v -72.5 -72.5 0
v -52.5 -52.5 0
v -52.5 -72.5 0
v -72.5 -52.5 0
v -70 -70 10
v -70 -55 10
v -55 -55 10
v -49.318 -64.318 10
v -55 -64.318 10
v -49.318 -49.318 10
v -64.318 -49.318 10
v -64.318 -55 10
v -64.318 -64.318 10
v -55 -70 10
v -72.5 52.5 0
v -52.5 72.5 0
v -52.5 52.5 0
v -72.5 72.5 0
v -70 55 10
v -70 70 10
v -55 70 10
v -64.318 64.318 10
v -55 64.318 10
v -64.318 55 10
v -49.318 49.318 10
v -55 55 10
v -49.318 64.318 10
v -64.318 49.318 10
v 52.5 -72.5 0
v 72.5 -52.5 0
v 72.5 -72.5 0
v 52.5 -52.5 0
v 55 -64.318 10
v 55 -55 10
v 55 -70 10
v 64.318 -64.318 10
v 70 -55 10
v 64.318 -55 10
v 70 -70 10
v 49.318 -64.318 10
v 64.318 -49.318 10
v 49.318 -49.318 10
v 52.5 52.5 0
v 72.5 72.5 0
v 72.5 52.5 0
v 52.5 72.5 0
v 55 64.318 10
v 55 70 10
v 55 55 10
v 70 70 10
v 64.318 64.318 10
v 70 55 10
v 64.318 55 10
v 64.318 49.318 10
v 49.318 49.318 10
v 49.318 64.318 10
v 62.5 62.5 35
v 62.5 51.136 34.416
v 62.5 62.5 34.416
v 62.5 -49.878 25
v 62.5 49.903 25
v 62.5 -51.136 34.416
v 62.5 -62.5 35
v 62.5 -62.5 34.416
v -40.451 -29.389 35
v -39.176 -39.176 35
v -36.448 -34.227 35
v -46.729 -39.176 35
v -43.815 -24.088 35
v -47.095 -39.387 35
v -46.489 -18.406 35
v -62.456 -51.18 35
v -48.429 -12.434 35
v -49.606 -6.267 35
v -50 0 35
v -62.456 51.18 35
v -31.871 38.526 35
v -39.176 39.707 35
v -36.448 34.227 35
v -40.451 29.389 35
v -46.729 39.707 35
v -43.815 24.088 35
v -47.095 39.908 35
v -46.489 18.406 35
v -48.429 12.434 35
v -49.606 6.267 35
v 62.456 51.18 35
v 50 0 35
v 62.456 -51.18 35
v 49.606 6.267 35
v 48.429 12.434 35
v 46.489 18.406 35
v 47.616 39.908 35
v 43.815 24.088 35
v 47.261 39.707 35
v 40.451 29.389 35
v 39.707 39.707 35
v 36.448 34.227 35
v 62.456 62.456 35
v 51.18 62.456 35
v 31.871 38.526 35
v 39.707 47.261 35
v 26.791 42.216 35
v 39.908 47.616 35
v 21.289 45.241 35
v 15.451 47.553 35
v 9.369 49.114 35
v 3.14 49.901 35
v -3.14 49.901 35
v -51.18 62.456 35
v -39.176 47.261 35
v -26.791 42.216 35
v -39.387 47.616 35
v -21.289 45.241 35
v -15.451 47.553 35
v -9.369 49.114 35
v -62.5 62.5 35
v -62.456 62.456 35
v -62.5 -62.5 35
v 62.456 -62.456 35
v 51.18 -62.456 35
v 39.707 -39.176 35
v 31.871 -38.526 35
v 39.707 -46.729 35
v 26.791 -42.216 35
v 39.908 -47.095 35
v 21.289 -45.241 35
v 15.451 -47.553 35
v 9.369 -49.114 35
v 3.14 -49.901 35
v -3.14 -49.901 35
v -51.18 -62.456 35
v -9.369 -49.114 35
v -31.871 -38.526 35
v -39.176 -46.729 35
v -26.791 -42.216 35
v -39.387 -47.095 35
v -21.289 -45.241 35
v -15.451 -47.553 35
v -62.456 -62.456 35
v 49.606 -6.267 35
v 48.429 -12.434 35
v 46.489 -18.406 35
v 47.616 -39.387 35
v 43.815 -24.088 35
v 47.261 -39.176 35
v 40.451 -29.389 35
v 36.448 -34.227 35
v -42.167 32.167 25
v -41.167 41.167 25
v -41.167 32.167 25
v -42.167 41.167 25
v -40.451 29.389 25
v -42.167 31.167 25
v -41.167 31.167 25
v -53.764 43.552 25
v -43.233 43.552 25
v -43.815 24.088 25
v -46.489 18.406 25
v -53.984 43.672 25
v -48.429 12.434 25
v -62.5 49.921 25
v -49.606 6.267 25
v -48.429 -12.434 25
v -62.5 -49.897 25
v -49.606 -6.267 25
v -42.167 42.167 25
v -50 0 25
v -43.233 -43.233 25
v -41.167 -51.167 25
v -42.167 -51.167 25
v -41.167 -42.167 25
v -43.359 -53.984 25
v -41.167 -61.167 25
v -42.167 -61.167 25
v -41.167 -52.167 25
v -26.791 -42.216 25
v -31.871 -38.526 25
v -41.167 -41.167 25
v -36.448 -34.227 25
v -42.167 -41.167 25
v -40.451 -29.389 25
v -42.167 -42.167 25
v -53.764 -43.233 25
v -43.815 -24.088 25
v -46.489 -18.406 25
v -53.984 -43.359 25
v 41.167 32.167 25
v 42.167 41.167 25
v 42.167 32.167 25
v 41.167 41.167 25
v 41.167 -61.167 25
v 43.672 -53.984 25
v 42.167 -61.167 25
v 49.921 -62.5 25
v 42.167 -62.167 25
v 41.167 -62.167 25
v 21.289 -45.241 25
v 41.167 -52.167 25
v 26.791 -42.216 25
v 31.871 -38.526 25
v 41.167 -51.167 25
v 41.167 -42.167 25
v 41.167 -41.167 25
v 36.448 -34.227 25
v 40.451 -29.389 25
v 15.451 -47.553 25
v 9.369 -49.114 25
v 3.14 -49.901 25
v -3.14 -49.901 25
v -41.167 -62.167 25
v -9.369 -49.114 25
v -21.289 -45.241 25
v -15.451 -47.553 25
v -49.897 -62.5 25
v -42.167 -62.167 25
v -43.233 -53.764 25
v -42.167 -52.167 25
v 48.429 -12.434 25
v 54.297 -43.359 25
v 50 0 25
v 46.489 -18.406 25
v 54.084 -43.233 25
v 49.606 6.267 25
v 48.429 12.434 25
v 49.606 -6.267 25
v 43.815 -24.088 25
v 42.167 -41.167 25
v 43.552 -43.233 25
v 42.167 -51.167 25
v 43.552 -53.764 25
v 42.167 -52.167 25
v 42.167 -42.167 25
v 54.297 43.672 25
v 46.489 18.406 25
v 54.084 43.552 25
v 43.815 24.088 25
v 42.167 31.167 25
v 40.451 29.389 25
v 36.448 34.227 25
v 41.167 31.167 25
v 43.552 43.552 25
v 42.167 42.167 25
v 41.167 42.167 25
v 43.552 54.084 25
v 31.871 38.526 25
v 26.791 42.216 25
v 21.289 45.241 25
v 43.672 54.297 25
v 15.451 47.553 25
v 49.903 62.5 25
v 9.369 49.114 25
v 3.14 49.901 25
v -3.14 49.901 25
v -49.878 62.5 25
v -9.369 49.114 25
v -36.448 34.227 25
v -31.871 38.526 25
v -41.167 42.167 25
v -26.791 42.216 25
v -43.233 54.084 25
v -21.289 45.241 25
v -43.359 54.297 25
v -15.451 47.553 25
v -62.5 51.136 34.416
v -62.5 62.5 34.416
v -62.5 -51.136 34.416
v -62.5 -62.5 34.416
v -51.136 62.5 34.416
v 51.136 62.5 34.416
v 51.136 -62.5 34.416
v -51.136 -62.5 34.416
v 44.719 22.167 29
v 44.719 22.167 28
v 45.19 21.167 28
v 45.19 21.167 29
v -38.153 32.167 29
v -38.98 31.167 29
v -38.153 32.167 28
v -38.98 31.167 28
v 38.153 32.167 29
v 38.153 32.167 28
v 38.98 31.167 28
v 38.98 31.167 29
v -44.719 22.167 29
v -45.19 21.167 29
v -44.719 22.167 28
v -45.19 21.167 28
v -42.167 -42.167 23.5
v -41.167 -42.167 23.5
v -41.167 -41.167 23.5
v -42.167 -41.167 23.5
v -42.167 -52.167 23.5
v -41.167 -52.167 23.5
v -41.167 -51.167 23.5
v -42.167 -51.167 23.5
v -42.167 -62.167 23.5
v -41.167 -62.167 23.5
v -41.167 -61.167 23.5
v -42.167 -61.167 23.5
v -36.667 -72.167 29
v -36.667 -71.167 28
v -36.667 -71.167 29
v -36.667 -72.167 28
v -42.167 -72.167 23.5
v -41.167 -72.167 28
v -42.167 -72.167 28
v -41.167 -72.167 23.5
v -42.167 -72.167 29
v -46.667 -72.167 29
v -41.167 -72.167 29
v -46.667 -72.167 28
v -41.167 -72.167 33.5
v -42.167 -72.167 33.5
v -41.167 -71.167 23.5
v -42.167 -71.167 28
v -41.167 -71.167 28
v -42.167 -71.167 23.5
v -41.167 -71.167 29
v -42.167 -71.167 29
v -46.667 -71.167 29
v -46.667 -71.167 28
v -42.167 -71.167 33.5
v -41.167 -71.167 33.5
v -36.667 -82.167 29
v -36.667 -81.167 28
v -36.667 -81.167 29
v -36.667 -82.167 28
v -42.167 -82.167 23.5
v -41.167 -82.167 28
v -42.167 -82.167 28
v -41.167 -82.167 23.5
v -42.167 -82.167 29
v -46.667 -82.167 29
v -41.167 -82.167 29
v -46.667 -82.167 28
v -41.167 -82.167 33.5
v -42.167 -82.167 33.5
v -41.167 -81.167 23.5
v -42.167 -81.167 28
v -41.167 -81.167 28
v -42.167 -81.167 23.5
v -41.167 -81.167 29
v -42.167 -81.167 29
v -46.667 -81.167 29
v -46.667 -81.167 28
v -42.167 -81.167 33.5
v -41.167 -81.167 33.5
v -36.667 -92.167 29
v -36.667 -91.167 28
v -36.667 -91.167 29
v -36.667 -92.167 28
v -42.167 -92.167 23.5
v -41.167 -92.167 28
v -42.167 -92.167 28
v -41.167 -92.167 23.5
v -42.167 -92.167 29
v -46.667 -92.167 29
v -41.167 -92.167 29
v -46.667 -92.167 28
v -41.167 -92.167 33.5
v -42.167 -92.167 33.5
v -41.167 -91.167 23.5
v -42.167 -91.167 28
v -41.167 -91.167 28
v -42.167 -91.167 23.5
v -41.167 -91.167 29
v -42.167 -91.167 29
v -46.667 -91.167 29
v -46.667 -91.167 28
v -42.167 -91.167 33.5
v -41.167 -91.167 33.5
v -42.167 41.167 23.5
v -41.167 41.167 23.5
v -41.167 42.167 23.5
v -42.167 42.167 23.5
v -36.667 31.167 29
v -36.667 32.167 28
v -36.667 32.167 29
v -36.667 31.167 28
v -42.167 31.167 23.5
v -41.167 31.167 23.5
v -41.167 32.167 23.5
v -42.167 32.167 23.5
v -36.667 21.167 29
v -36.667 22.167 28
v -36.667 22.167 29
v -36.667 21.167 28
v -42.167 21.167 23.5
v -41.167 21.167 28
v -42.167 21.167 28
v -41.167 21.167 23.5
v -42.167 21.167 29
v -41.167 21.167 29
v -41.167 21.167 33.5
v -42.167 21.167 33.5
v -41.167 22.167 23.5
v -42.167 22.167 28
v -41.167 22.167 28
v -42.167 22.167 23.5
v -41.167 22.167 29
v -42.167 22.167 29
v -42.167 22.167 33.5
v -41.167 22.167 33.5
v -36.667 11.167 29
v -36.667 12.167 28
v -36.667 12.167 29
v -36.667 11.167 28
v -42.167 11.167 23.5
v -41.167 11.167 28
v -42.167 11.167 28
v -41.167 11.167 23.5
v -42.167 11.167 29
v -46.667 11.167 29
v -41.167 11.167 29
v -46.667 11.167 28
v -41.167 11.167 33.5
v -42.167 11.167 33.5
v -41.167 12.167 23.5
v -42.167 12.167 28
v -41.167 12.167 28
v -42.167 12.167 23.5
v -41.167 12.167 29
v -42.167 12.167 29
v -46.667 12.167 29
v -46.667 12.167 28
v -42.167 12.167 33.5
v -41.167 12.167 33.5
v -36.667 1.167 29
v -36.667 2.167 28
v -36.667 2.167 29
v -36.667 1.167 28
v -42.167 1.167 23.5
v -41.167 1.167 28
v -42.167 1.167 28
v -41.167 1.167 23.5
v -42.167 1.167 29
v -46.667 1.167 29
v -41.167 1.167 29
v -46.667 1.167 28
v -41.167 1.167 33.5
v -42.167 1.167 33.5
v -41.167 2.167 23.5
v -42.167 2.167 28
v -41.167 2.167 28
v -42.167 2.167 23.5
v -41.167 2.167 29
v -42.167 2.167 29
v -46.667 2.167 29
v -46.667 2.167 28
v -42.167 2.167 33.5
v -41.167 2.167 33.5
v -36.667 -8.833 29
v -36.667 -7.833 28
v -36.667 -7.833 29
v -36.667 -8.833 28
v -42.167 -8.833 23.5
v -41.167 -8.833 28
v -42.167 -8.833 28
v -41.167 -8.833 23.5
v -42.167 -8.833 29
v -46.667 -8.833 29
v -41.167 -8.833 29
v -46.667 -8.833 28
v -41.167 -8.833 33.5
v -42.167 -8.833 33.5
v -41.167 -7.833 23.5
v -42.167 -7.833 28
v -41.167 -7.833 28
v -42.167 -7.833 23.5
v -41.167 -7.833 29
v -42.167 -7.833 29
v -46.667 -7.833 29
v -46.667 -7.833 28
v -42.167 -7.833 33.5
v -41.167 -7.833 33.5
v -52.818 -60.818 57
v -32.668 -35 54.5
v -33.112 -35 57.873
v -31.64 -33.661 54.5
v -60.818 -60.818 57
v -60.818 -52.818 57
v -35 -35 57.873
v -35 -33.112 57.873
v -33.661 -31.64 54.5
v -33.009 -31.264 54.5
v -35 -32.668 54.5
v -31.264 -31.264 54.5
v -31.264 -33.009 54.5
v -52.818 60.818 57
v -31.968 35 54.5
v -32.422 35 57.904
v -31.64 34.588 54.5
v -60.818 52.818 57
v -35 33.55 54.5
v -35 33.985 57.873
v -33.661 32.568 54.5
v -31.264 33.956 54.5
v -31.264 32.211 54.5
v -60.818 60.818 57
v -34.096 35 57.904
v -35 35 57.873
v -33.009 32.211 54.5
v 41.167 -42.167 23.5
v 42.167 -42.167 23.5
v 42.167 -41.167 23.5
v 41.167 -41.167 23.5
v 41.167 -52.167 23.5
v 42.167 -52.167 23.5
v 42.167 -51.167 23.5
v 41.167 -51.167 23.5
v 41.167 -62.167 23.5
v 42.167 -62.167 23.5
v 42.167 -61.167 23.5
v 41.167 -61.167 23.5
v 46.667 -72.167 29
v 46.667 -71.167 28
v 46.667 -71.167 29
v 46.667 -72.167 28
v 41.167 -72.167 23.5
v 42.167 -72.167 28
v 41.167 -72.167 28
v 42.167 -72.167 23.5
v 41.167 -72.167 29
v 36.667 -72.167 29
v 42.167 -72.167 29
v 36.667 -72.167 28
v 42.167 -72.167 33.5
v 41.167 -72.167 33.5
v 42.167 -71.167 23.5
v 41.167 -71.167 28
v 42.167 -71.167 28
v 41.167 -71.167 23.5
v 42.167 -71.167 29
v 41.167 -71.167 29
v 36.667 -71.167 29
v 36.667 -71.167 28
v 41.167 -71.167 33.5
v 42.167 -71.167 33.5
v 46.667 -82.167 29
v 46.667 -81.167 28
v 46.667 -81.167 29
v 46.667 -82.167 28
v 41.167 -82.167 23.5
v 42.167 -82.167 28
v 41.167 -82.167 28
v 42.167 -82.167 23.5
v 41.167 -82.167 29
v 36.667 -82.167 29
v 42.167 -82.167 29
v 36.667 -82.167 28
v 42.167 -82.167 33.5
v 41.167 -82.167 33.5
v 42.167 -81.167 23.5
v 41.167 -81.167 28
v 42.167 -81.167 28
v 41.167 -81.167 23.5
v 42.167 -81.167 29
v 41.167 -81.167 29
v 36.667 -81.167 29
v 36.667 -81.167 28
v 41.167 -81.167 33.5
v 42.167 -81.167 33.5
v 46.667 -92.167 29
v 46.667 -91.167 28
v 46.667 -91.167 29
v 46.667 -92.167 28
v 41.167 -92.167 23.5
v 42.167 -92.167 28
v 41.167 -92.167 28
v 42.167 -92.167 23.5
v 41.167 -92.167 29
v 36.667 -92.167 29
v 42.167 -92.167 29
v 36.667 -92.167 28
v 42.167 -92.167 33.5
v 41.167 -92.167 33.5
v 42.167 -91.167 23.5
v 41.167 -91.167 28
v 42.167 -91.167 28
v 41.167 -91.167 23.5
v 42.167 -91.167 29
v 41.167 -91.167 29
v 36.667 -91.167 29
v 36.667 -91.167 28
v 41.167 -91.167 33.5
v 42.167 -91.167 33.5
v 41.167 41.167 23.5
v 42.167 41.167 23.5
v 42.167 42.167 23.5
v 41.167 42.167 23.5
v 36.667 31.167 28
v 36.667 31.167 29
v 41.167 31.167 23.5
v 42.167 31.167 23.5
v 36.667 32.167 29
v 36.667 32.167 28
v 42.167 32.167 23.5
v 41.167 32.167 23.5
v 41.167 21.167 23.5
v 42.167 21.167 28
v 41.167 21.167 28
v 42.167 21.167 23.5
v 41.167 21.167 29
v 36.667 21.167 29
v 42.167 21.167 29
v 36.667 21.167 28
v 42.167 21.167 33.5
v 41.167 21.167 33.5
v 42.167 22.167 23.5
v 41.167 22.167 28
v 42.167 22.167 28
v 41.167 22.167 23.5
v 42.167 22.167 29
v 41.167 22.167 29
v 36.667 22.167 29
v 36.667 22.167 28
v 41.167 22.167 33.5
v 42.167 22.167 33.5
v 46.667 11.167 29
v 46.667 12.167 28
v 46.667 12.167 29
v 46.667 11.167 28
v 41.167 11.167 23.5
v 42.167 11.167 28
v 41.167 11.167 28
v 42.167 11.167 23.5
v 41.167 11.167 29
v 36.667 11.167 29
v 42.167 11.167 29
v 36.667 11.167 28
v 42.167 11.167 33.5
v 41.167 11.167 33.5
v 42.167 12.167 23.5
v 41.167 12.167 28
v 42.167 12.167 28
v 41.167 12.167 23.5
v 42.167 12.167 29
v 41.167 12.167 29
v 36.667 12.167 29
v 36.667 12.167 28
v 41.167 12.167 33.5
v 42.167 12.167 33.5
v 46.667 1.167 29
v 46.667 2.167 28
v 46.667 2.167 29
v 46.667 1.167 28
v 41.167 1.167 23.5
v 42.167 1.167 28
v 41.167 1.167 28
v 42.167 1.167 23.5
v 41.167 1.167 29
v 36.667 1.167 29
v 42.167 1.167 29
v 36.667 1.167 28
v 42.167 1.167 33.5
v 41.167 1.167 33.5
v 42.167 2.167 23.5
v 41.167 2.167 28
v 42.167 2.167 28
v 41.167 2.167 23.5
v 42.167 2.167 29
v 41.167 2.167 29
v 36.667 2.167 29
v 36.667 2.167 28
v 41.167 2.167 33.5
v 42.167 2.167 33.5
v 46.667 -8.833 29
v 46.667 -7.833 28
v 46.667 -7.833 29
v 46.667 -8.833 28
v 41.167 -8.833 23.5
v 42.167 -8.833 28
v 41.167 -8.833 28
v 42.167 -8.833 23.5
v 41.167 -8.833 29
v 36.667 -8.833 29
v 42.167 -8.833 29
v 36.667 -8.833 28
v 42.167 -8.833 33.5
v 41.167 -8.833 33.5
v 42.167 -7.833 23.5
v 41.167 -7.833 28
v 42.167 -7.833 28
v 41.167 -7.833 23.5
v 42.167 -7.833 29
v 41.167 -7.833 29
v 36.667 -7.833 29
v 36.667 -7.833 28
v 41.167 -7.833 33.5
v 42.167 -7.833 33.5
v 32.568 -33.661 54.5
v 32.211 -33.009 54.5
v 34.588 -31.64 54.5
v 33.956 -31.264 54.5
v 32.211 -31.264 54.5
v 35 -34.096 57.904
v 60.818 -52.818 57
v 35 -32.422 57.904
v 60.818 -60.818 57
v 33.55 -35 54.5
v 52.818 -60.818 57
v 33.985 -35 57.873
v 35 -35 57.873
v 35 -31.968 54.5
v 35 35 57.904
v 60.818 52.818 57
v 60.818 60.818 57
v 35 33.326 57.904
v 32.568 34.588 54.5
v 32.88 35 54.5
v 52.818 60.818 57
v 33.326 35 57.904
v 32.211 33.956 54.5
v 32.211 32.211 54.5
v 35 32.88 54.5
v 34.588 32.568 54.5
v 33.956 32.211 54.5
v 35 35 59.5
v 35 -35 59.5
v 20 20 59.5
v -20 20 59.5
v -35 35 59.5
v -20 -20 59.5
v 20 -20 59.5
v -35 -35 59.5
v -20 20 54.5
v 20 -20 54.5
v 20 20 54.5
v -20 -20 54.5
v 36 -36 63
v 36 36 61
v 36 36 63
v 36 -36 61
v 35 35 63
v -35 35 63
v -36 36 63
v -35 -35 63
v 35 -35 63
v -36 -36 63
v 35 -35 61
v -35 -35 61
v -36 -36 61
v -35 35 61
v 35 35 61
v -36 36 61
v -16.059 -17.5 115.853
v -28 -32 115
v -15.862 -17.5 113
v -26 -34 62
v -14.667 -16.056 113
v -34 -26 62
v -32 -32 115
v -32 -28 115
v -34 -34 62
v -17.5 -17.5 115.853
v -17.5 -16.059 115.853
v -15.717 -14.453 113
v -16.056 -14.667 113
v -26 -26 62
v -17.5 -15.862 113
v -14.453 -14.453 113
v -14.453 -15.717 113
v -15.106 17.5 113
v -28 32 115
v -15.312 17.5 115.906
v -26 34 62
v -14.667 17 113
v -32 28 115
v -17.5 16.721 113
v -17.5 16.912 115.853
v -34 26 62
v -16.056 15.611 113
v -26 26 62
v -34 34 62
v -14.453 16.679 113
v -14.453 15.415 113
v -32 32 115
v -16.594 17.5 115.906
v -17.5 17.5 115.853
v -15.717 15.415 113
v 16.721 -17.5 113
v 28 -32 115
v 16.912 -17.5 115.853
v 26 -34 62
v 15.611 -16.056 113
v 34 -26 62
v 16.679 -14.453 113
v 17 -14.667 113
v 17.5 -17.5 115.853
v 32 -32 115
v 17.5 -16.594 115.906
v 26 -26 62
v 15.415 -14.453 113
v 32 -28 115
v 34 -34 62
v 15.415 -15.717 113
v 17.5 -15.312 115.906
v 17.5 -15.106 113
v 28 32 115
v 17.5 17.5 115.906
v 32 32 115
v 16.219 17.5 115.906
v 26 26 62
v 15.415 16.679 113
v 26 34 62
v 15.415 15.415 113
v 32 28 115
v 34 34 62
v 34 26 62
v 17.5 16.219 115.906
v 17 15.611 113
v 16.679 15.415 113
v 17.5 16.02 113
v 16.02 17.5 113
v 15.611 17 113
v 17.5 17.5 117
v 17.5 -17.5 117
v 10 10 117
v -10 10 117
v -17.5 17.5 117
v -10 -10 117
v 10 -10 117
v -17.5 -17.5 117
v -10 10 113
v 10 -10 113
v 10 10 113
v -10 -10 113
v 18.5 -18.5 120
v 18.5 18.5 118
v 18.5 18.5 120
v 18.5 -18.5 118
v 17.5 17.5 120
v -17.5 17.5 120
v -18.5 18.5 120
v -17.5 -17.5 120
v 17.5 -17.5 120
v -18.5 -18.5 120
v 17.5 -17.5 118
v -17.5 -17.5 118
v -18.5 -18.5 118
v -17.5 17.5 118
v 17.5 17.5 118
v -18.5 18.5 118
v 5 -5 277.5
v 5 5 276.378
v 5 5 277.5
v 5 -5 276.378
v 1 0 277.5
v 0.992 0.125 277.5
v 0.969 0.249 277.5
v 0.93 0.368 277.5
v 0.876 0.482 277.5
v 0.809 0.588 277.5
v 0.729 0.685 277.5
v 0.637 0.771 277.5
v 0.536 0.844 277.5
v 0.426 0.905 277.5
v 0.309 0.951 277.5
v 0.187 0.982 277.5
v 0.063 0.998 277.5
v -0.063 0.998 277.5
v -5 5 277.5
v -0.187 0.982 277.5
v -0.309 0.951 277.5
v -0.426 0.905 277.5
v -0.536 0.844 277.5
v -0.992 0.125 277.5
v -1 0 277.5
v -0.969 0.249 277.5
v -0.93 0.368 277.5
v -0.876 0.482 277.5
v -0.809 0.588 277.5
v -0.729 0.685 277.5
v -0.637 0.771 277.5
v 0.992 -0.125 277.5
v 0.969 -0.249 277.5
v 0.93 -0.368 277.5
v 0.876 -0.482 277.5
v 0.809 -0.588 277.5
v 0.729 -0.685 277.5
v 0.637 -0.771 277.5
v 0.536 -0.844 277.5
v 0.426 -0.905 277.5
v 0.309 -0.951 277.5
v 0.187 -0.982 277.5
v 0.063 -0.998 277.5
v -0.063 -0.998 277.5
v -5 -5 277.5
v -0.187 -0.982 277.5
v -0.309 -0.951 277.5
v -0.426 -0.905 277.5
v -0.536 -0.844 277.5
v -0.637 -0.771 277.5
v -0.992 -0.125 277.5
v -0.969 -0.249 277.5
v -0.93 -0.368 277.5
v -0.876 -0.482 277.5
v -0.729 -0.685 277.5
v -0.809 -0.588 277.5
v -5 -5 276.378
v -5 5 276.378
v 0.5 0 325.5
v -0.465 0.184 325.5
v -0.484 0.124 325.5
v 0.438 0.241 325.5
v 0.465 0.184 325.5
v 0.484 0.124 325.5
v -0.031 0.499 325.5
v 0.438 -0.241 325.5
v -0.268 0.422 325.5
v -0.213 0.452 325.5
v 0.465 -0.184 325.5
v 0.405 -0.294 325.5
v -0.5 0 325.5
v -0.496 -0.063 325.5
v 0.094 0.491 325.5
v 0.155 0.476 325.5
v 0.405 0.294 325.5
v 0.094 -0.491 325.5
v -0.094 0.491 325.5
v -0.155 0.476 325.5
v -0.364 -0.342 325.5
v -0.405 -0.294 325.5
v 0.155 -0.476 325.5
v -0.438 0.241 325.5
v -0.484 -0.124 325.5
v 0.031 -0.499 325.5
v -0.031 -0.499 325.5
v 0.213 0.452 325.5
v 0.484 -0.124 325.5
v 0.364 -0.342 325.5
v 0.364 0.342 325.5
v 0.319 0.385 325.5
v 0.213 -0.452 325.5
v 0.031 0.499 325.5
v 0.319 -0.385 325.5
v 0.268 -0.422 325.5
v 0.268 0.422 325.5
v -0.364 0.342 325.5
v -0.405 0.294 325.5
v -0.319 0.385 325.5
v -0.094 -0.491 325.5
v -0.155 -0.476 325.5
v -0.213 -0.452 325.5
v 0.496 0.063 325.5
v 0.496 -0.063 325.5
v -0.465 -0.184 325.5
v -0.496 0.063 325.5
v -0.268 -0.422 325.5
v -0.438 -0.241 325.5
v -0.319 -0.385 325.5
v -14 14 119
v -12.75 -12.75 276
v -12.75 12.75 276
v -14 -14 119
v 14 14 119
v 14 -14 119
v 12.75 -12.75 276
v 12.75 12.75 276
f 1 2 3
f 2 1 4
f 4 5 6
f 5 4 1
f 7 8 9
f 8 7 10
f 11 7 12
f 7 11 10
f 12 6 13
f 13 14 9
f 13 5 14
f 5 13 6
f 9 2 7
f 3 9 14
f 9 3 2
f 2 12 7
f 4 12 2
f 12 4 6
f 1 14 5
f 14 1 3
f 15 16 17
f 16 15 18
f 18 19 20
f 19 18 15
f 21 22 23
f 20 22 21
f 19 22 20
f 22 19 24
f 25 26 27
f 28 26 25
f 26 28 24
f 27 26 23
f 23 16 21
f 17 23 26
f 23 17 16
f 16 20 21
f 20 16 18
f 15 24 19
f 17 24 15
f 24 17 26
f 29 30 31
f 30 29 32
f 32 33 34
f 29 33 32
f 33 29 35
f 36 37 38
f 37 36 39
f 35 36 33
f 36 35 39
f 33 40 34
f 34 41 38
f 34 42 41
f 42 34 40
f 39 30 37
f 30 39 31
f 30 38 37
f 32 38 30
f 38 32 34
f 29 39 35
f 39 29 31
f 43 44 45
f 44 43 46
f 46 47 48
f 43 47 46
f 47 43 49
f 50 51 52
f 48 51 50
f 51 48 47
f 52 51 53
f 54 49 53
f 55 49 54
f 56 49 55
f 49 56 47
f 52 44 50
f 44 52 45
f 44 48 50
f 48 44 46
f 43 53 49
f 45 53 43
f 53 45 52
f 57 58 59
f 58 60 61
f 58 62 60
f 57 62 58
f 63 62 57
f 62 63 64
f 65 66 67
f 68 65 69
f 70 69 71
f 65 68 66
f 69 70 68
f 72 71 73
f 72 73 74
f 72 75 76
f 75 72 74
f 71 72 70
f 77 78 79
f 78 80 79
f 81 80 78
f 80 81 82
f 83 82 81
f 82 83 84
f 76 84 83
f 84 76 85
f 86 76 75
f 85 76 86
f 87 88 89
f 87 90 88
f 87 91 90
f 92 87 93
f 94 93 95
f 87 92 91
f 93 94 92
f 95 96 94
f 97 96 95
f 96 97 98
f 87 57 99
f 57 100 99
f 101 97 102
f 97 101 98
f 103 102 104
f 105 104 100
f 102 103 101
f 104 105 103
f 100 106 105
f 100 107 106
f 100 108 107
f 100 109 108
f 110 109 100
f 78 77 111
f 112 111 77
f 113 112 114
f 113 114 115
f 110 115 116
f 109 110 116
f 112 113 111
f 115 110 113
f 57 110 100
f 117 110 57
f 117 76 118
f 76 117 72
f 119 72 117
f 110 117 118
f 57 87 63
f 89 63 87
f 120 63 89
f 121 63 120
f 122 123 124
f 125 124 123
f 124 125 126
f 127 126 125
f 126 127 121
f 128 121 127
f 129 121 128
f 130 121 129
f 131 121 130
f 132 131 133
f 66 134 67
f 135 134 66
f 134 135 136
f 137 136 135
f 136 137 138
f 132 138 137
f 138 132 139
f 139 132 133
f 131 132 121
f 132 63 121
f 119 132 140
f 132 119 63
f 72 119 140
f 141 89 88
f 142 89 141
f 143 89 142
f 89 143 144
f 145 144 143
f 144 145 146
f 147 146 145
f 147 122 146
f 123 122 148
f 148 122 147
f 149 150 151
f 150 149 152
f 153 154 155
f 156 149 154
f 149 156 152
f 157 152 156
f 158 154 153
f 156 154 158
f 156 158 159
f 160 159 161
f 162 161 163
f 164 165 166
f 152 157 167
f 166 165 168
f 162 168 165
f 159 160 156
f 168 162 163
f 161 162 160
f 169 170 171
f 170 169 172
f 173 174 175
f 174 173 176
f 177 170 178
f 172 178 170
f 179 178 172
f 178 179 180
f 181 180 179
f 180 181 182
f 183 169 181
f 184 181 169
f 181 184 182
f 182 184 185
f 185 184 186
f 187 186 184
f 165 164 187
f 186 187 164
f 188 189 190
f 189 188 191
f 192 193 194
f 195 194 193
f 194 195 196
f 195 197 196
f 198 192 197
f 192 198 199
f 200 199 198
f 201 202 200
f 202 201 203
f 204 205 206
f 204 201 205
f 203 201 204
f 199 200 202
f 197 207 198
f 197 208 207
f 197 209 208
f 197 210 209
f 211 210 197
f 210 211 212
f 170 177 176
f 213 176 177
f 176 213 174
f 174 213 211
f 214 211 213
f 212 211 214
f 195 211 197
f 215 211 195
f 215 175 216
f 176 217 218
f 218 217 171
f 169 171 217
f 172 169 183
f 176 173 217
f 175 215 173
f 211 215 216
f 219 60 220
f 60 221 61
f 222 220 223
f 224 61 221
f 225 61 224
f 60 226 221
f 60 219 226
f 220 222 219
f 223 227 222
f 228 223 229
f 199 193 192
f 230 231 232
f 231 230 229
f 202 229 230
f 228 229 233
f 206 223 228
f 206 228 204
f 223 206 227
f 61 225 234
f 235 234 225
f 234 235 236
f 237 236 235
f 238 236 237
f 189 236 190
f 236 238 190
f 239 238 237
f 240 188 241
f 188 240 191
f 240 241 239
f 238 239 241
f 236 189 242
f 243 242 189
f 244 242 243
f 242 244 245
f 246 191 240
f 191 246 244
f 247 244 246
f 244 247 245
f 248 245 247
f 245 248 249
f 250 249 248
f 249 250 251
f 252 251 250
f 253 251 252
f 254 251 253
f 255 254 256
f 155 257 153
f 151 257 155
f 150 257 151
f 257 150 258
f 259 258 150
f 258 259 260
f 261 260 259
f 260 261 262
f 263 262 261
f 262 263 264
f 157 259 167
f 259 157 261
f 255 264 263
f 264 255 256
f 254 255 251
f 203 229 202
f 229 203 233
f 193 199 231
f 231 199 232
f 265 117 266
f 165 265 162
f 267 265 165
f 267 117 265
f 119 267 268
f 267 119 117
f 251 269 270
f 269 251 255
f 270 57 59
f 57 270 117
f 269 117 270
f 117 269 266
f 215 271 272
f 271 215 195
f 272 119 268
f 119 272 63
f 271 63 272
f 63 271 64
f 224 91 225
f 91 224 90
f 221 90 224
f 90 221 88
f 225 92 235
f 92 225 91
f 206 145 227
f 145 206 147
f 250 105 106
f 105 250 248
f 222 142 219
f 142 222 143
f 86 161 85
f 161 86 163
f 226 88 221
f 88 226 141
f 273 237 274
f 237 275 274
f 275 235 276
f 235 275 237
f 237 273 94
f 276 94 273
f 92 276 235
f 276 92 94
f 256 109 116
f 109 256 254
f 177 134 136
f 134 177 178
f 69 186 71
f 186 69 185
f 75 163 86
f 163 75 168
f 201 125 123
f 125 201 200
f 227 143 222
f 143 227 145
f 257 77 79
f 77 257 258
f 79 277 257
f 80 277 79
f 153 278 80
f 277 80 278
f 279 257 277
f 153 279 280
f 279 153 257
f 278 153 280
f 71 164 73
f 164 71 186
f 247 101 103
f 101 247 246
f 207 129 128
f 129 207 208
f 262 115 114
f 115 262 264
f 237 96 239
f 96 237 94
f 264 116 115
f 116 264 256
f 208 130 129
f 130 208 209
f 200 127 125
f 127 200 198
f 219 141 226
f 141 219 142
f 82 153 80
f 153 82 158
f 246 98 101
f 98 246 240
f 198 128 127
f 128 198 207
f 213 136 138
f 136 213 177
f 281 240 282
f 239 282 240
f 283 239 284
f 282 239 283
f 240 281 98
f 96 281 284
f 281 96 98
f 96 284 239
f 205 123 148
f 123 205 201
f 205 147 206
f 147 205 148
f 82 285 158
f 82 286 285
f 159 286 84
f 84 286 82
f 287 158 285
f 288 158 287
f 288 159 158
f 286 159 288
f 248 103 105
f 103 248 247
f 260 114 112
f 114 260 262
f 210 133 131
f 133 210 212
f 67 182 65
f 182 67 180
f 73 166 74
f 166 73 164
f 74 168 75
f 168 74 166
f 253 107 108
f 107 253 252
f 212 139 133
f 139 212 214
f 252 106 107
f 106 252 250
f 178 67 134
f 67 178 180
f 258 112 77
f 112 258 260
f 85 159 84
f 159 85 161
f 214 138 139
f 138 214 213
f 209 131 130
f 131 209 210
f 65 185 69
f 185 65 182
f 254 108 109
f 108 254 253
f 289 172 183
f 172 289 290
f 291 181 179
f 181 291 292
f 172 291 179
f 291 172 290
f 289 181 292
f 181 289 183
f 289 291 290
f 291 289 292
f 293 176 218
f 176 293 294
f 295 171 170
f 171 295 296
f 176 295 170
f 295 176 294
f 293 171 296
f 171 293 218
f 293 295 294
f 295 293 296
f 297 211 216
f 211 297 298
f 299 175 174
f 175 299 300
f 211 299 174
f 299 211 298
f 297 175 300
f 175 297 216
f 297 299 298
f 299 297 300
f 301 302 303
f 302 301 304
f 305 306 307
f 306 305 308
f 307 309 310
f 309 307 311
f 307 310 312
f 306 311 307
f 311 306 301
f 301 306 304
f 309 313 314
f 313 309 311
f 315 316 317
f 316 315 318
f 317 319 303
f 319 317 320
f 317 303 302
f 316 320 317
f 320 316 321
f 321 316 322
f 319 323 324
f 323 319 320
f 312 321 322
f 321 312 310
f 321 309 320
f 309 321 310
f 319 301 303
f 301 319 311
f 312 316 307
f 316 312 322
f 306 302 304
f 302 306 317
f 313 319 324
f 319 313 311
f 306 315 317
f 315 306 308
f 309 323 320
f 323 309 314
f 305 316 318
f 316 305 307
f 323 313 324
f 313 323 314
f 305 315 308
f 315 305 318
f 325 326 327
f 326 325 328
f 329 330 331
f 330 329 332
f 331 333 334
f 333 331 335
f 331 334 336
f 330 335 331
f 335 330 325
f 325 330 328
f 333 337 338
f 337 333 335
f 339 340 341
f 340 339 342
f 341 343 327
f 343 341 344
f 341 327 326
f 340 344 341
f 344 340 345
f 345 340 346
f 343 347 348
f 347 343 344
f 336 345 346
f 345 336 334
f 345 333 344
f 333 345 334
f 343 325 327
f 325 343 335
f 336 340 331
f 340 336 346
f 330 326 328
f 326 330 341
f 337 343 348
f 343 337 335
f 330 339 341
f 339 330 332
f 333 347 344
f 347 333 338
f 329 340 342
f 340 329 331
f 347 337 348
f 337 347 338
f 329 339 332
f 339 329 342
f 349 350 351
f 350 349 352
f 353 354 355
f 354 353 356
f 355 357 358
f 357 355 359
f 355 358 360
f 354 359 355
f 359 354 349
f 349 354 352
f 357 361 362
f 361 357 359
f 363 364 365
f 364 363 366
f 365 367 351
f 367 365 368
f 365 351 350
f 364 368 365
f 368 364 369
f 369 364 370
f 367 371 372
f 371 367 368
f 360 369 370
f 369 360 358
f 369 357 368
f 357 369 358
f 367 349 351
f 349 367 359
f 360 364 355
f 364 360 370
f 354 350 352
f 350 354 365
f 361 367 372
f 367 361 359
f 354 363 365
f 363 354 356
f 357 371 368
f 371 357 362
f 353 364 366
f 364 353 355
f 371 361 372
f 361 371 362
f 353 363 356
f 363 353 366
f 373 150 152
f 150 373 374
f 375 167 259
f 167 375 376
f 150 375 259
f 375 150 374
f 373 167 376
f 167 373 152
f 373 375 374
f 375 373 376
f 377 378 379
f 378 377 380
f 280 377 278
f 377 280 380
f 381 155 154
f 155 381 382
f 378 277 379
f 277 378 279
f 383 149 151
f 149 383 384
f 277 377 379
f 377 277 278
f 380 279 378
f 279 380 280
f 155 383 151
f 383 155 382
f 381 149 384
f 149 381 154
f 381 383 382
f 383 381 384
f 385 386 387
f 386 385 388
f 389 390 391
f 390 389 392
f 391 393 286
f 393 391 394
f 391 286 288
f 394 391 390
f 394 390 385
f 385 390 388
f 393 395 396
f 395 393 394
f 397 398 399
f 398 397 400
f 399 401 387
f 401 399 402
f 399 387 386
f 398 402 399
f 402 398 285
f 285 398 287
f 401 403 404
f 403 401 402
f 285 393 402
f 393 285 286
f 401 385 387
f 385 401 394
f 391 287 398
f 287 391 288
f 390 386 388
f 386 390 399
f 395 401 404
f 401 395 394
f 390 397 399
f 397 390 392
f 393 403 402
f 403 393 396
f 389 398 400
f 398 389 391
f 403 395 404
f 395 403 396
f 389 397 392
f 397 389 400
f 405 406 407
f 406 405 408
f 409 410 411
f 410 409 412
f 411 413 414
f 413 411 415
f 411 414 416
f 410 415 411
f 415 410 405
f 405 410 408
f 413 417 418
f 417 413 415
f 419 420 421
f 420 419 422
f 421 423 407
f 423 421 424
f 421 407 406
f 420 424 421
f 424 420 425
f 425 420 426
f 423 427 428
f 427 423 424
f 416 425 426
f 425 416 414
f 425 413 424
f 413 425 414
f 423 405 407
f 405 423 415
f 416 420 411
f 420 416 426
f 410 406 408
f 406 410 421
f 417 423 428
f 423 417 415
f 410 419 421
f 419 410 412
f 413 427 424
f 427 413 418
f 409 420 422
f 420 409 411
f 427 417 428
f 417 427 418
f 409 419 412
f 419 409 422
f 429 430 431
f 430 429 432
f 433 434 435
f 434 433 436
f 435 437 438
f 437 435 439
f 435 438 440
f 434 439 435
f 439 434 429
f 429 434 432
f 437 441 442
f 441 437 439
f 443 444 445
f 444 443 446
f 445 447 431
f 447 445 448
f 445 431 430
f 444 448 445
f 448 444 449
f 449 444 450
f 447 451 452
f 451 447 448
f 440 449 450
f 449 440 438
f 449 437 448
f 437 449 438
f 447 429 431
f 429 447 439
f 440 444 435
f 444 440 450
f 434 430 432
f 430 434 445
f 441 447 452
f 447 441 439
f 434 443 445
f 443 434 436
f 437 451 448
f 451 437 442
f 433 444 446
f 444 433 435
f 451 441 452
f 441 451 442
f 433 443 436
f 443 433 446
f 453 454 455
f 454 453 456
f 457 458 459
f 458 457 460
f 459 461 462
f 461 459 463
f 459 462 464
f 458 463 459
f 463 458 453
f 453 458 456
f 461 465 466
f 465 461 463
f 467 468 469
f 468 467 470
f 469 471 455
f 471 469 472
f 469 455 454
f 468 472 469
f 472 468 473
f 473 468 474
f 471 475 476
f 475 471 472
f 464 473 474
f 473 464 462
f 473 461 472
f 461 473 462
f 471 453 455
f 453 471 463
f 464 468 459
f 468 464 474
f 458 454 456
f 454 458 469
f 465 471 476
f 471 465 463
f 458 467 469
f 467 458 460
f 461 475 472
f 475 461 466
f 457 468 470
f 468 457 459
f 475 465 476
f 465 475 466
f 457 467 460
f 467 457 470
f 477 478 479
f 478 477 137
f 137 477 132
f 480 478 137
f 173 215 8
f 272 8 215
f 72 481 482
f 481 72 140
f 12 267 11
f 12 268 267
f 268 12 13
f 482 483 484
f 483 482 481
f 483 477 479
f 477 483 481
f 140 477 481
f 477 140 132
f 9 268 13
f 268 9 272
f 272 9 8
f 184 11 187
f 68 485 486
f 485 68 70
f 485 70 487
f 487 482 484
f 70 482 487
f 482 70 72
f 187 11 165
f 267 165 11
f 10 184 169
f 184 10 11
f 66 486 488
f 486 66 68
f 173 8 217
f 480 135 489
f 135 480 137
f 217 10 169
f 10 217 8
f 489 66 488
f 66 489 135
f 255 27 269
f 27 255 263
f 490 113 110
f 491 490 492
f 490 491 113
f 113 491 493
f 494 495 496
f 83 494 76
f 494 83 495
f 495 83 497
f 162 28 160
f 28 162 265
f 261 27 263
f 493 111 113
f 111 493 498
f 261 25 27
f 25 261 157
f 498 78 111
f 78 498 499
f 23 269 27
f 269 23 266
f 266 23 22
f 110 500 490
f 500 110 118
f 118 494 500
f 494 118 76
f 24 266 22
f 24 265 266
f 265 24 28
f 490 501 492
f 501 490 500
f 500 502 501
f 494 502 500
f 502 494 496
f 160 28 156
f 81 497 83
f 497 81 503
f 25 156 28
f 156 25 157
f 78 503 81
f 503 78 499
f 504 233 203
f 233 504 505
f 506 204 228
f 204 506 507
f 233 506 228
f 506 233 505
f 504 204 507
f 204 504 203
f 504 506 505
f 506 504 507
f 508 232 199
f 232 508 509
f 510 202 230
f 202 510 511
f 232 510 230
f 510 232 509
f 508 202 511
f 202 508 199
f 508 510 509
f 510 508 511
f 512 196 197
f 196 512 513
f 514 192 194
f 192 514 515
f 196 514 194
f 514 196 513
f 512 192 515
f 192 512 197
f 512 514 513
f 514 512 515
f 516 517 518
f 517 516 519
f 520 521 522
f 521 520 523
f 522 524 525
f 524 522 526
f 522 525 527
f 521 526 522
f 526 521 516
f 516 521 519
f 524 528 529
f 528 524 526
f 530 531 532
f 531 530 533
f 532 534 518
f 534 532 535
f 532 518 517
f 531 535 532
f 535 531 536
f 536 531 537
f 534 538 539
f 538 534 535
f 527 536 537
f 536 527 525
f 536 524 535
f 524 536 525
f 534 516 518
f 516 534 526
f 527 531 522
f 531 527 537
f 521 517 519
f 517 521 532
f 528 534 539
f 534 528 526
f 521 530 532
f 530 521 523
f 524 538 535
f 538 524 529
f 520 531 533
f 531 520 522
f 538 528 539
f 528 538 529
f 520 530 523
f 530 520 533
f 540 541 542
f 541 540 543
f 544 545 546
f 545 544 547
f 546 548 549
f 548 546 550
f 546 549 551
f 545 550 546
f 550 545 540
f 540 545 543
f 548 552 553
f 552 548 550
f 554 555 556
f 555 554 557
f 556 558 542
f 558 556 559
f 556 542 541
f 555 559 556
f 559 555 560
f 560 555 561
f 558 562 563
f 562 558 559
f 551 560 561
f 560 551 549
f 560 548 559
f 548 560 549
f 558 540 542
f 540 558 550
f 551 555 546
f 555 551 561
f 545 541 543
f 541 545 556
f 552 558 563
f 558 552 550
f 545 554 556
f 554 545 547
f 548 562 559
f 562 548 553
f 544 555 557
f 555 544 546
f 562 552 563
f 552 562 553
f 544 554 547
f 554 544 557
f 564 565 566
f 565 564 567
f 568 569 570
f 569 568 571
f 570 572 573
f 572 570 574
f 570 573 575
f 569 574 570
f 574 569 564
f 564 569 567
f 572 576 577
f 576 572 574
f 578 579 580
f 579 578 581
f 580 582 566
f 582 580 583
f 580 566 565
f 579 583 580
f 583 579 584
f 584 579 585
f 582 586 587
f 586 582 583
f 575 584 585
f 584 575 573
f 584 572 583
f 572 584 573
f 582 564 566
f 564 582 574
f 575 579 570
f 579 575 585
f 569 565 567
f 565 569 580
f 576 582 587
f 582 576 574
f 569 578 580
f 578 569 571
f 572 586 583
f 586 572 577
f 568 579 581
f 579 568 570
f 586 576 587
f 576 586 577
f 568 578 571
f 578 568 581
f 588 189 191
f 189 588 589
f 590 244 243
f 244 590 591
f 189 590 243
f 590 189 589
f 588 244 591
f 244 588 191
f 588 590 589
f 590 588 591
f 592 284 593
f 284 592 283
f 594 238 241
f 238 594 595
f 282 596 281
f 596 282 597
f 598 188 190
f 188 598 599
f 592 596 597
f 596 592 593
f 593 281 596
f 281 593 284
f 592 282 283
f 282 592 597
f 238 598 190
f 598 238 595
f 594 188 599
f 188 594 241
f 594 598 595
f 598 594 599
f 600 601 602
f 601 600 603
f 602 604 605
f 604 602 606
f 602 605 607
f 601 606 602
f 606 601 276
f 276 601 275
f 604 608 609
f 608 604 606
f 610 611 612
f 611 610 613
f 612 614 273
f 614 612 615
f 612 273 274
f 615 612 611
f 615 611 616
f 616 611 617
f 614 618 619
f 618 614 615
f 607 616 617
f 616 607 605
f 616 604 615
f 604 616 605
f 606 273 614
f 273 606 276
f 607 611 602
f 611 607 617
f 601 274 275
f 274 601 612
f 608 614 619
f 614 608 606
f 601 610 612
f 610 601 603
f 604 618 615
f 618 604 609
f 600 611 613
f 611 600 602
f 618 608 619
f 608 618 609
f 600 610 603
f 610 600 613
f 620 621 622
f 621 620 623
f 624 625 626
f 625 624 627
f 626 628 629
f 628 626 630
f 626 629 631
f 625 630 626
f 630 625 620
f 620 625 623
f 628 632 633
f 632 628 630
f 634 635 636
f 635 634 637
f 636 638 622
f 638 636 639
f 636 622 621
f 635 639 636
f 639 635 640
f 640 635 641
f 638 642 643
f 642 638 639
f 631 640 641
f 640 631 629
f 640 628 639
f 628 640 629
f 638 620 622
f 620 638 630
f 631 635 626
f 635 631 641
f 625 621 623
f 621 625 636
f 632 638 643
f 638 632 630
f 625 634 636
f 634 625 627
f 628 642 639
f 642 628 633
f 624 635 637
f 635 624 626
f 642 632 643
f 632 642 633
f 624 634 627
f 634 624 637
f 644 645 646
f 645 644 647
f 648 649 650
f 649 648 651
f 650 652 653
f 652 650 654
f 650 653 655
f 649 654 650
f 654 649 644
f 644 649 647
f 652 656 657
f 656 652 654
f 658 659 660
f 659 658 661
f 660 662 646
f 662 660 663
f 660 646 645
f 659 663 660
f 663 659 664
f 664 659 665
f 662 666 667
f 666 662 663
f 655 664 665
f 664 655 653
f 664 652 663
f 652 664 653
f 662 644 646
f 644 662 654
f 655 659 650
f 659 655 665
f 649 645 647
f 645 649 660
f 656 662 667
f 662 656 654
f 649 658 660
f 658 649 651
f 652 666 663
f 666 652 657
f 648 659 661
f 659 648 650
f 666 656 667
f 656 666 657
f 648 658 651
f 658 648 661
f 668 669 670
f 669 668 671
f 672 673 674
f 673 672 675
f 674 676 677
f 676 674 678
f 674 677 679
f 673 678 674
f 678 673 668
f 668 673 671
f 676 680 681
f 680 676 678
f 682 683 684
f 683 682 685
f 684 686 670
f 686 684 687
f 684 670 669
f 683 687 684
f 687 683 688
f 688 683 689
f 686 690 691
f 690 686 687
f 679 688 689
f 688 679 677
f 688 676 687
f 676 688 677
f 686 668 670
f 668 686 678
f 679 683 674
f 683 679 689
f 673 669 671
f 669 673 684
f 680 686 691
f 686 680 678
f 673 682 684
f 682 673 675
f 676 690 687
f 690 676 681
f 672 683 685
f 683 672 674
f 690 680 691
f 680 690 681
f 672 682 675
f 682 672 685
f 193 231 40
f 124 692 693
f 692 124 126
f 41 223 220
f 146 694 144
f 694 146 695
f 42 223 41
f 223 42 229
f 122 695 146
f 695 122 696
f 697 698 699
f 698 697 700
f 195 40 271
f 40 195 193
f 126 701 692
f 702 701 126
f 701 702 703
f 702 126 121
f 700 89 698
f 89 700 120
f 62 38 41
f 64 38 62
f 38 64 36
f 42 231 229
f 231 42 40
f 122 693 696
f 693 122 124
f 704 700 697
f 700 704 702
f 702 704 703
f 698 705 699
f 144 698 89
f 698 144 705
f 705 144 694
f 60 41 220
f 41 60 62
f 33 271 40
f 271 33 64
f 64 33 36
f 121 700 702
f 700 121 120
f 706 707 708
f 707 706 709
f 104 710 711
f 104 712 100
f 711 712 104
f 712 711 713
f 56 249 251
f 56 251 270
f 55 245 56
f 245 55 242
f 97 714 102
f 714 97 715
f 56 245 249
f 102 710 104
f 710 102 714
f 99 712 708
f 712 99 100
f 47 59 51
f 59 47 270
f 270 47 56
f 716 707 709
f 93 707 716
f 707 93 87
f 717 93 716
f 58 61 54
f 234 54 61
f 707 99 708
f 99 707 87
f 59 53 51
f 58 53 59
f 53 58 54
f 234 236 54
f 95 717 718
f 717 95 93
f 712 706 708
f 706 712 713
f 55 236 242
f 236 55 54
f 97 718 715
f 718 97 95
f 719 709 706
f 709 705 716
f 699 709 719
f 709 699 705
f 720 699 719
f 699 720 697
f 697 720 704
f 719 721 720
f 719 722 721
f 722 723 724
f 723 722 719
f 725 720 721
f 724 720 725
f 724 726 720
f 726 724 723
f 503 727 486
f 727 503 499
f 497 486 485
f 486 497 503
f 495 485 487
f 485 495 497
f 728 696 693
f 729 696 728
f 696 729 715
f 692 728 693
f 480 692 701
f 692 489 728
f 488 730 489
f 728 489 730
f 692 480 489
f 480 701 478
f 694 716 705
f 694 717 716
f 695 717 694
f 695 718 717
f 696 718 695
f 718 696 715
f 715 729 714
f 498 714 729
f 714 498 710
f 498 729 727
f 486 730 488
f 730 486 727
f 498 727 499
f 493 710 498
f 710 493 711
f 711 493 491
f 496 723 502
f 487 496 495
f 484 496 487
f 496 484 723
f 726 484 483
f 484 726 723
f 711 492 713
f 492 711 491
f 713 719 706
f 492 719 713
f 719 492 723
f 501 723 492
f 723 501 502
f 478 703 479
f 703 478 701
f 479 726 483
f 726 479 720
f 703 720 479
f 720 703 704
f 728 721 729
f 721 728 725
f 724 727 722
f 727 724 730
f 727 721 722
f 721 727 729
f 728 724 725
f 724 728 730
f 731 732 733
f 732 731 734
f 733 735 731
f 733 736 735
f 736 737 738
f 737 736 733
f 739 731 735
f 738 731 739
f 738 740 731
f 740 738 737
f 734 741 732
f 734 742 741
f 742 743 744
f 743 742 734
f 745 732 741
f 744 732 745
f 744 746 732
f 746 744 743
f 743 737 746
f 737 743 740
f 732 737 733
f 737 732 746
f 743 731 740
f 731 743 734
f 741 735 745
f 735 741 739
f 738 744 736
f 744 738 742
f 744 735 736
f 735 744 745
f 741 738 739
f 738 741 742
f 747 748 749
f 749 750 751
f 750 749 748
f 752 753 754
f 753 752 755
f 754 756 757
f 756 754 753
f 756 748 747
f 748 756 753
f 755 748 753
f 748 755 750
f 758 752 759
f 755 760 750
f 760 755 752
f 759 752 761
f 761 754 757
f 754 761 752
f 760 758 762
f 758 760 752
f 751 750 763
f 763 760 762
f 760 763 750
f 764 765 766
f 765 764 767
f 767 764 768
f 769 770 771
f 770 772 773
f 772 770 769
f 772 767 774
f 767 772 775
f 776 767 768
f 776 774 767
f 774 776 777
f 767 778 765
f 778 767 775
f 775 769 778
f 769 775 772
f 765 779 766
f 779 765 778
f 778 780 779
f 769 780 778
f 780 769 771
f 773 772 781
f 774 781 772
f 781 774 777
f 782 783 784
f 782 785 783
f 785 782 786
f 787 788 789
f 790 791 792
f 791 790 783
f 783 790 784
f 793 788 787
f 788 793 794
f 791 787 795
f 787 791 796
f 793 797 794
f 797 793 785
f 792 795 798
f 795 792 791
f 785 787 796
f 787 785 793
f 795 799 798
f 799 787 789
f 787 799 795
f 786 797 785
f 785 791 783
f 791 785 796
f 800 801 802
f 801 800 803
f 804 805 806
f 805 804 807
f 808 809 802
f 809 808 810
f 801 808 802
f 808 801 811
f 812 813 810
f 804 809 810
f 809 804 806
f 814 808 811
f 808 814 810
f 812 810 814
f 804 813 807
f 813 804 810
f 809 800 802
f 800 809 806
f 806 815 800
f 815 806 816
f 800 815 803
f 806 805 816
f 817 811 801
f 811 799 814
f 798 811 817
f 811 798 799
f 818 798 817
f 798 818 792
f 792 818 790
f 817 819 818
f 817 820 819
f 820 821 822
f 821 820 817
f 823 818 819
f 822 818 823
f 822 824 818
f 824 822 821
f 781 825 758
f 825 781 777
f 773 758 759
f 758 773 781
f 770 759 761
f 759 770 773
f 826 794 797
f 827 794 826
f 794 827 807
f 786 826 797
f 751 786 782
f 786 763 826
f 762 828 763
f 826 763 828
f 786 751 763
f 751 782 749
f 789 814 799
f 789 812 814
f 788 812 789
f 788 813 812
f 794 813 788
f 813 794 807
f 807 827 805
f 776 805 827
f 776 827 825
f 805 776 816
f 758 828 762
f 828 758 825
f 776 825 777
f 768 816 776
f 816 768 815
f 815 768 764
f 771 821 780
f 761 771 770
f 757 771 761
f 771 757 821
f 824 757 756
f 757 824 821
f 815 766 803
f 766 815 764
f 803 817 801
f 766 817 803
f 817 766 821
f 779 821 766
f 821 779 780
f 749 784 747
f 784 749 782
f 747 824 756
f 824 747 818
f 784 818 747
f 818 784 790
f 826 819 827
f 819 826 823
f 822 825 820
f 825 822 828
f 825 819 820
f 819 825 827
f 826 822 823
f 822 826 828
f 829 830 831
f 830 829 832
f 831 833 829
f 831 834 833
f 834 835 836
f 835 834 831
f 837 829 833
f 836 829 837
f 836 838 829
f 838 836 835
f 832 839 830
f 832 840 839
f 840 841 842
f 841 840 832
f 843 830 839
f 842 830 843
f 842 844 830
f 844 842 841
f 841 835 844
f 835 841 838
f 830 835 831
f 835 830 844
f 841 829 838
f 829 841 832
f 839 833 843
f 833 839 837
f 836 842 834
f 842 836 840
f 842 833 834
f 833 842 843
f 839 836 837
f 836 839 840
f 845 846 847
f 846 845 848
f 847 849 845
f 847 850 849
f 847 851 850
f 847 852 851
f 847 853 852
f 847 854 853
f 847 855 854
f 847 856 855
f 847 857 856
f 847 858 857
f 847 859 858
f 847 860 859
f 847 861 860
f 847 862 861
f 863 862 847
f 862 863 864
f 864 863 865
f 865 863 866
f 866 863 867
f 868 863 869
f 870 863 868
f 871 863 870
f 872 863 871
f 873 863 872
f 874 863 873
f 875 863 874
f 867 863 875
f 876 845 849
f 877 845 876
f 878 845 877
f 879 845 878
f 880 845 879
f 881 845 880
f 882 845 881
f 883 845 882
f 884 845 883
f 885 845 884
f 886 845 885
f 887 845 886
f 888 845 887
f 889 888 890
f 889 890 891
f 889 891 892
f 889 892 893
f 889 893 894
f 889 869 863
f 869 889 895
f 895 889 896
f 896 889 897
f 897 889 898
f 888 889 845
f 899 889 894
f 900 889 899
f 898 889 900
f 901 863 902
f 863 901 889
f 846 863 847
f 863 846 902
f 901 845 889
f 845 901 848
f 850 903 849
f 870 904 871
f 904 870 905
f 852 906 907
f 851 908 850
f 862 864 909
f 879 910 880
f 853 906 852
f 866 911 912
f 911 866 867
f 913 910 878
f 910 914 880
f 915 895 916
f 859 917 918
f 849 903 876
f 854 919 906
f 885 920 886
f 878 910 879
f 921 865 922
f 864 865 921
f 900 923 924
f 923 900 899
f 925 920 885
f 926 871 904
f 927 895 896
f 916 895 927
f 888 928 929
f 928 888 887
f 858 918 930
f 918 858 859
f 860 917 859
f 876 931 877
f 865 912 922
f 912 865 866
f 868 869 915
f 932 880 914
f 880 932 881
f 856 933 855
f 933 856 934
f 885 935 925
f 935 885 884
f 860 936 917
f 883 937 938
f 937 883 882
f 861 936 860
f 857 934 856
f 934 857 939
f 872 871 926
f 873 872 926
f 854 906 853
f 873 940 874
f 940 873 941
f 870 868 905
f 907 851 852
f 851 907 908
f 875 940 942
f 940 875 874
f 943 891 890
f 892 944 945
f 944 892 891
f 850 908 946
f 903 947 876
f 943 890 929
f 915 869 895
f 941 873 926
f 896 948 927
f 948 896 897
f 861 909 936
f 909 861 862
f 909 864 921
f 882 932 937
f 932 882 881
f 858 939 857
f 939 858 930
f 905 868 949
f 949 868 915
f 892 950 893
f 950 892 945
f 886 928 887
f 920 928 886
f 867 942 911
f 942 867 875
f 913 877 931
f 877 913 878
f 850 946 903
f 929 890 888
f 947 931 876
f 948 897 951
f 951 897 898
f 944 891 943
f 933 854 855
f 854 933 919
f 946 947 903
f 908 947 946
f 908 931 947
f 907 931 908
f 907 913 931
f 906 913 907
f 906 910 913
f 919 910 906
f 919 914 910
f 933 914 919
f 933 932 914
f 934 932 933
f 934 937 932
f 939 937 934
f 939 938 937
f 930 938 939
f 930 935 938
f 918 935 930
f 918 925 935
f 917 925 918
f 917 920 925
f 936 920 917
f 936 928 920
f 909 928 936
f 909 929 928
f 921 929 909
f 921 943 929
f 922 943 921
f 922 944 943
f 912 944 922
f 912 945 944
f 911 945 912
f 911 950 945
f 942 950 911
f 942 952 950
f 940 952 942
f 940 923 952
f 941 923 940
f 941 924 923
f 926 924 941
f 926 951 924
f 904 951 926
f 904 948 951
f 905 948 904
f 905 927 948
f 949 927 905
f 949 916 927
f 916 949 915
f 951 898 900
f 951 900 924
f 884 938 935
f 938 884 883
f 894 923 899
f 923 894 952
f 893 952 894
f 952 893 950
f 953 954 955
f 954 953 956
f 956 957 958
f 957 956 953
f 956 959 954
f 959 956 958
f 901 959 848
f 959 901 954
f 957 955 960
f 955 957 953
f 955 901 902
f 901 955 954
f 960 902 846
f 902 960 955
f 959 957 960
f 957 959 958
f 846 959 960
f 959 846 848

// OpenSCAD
// Torre Eiffel Detallada en OpenSCAD

// Calidad del renderizado
$fn = 50;

// Dimensiones generales
base_width = 125;
primera_plataforma_y = 57;
segunda_plataforma_y = 115;
tercera_plataforma_y = 276;
altura_total = 324;

// Módulo para un solo pilar
module pilar(altura, base, tope) {
    linear_extrude(height = altura, convexity = 10, twist = 0, scale = [tope/base, tope/base]) {
        square(base, center = true);
    }
}

// Módulo para la celosía (simplificada)
module celosia(largo, ancho, grosor) {
    for (i = [0 : 10 : largo]) {
        translate([0, 0, i]) cube([ancho, grosor, 1], center = true);
        translate([0, 0, i]) cube([grosor, ancho, 1], center = true);
    }
}

// Base de la Torre
module base() {
    for (x = [-1, 1]) {
        for (y = [-1, 1]) {
            translate([x * base_width / 2, y * base_width / 2, 0]) {
                pilar(10, 20, 15);
            }
        }
    }
    // Arcos de la base
    difference() {
        translate([0, 0, 30]) cube([base_width, base_width, 10], center = true);
        translate([0, 0, 30]) cylinder(h = 12, r = base_width / 2.5, center = true);
    }
}

// Cuerpo inferior
module cuerpo_inferior() {
    for (x = [-1, 1]) {
        for (y = [-1, 1]) {
            // Pilares principales
            hull() {
                translate([x * base_width / 2.2, y * base_width / 2.2, 10]) pilar(primera_plataforma_y - 10, 15, 8);
                translate([x * base_width / 4, y * base_width / 4, primera_plataforma_y]) cube([1,1,1]);
            }
            // Celosía interna (simplificada)
            translate([x*base_width/3, y*base_width/3, primera_plataforma_y/2]) rotate([90,0,0]) celosia(primera_plataforma_y, 10, 1);
        }
    }
}

// Primera plataforma
module primera_plataforma() {
    translate([0, 0, primera_plataforma_y]) {
        difference() {
            cube([70, 70, 5], center = true);
            translate([0,0,-2]) cube([40,40,10], center=true);
        }
        // Barandillas
        translate([0, 0, 5]) difference() {
            cube([72, 72, 2], center = true);
            cube([70, 70, 2], center = true);
        }
    }
}

// Cuerpo medio
module cuerpo_medio() {
    for (x = [-1, 1]) {
        for (y = [-1, 1]) {
            hull() {
                translate([x * 30, y * 30, primera_plataforma_y + 5]) pilar(segunda_plataforma_y - primera_plataforma_y - 5, 8, 4);
                translate([x * 15, y * 15, segunda_plataforma_y]) cube(1);
            }
        }
    }
}

// Segunda plataforma
module segunda_plataforma() {
    translate([0, 0, segunda_plataforma_y]) {
        difference() {
            cube([35, 35, 4], center = true);
            translate([0,0,-2]) cube([20,20,8], center=true);
        }
        // Barandillas
        translate([0, 0, 4]) difference() {
            cube([37, 37, 2], center = true);
            cube([35, 35, 2], center = true);
        }
    }
}

// Cuerpo superior
module cuerpo_superior() {
    hull() {
        translate([0, 0, segunda_plataforma_y + 4]) {
            for (x = [-1, 1]) {
                for (y = [-1, 1]) {
                    translate([x * 12, y * 12, 0]) pilar(tercera_plataforma_y - segunda_plataforma_y - 4, 4, 1.5);
                }
            }
        }
        translate([0, 0, tercera_plataforma_y]) cube([5,5,1], center=true);
    }
}

// Plataforma superior y antena
module cima() {
    translate([0, 0, tercera_plataforma_y]) {
        // Plataforma
        cube([10, 10, 3], center = true);
        // Antena
        translate([0, 0, 1.5]) cylinder(h = altura_total - tercera_plataforma_y, r1 = 1, r2 = 0.5, center = false);
    }
}

// Ensamblaje de la Torre Eiffel
base();
cuerpo_inferior();
primera_plataforma();
cuerpo_medio();
segunda_plataforma();
cuerpo_superior();
cima();
